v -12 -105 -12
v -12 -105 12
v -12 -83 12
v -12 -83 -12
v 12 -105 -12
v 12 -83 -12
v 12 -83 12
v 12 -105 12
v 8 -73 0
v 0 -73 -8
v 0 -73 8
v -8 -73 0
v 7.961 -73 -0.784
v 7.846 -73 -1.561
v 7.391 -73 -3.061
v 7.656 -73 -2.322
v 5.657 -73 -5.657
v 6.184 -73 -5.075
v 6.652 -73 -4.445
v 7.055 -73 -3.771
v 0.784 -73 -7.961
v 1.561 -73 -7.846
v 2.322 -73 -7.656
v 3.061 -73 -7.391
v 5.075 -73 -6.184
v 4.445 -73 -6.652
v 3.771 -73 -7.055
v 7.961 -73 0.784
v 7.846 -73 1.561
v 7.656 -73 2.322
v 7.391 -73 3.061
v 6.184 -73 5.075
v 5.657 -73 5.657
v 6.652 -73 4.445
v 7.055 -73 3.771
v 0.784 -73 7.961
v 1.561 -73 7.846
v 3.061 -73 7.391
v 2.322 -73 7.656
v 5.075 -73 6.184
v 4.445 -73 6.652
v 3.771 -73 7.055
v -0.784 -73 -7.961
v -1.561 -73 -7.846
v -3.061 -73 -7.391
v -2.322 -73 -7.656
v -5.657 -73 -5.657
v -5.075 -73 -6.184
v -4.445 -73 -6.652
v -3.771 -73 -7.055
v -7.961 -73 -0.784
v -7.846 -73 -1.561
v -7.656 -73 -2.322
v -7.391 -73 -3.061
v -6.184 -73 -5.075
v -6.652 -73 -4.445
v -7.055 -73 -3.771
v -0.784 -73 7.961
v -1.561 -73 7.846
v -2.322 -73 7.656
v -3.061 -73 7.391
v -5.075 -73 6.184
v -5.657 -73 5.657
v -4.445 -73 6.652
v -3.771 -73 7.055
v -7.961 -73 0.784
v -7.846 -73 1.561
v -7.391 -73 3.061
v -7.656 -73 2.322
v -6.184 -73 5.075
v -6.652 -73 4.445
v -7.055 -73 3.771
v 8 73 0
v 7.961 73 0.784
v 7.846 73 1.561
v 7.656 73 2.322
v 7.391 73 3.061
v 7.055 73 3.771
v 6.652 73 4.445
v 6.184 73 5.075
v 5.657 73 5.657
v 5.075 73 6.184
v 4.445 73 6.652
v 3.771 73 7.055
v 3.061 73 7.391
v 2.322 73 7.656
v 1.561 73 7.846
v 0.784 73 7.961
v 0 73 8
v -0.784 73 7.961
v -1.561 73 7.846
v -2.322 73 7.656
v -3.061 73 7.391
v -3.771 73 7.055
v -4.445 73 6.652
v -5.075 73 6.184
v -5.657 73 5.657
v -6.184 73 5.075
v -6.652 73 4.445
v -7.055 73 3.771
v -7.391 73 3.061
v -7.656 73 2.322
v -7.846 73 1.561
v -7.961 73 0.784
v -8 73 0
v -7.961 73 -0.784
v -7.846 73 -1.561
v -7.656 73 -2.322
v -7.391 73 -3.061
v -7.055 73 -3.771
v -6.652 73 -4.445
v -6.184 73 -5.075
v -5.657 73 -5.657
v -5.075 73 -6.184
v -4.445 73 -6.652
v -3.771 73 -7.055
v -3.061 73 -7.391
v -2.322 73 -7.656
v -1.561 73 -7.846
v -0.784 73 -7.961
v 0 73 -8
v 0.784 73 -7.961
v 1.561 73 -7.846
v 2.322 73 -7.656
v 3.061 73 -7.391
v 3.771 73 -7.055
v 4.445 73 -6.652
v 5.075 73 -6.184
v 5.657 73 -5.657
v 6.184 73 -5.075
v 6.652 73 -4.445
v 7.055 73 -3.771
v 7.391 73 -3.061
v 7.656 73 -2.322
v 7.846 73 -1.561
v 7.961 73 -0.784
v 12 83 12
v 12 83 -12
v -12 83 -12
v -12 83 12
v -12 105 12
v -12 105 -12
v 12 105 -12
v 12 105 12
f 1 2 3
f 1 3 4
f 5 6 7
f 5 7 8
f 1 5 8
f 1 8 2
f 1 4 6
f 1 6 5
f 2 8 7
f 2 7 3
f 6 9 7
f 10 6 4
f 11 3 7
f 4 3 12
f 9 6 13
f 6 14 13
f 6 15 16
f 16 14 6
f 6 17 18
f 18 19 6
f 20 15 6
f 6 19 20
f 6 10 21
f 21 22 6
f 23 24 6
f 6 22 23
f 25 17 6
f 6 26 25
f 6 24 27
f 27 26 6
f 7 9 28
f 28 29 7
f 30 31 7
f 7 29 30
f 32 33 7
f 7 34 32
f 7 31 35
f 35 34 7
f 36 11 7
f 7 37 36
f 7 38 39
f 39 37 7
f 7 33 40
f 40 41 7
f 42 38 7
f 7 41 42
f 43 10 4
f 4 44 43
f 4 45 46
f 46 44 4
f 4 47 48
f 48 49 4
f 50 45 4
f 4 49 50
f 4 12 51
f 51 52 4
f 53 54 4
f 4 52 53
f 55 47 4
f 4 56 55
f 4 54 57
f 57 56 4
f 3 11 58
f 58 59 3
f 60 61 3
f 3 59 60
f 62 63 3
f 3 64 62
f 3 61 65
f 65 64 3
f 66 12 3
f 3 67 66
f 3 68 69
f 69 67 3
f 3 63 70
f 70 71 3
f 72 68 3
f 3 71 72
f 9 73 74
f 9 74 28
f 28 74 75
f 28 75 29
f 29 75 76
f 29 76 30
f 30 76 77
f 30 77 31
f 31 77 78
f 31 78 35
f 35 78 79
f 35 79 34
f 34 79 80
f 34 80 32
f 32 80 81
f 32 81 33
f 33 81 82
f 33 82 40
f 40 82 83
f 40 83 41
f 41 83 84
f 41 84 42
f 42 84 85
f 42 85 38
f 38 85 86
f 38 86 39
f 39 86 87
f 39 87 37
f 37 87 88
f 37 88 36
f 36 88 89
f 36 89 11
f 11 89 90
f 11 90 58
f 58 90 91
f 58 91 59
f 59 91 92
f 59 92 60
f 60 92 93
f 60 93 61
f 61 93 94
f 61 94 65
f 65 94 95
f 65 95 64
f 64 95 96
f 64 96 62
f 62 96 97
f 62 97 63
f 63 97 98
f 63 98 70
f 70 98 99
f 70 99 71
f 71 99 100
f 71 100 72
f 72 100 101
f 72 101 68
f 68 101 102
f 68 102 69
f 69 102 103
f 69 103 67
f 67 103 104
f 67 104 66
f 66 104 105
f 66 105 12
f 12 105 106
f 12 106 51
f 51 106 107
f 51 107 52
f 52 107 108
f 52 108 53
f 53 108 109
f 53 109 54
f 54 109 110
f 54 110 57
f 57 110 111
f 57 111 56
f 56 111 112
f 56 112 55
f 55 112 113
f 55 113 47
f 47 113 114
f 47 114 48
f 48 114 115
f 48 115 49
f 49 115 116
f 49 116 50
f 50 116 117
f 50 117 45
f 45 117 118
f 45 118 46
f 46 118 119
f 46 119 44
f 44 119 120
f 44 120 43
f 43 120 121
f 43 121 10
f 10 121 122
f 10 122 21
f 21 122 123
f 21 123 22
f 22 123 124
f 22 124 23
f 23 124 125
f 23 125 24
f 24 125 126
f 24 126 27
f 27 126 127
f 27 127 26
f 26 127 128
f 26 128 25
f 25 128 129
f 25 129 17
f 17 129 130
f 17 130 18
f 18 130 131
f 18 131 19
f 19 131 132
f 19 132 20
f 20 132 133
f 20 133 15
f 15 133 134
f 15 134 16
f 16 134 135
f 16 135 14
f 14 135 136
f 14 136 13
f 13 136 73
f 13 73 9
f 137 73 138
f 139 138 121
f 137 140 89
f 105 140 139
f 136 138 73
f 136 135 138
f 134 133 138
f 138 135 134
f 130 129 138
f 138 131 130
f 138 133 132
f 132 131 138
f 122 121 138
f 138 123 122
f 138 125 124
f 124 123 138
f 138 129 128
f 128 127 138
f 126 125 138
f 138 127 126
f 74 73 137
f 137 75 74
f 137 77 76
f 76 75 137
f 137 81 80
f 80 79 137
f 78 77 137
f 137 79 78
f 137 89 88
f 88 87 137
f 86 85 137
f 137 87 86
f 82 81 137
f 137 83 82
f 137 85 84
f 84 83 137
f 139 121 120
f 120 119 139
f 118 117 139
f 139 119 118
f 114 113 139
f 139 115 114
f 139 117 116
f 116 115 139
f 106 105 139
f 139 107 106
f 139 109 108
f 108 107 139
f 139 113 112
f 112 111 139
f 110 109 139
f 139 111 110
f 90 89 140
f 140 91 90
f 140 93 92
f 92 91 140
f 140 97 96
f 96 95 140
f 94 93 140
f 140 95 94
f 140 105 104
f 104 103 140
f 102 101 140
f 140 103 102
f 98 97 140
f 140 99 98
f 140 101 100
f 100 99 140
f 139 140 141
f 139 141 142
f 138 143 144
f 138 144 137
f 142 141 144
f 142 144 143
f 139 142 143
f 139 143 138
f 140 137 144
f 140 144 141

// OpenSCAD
// Millimeters. Same vertices as STL and simulation.
polyhedron(points=[[-12.0, -105.0, -12.0], [-12.0, -105.0, 12.0], [-12.0, -83.0, 12.0], [-12.0, -83.0, -12.0], [12.0, -105.0, -12.0], [12.0, -83.0, -12.0], [12.0, -83.0, 12.0], [12.0, -105.0, 12.0], [8.0, -73.0, 0.0], [-1.469576158976824e-15, -73.0, -8.0], [4.898587196589413e-16, -73.0, 8.0], [-8.0, -73.0, 9.797174393178826e-16], [7.961477813377575, -73.0, -0.784137122636484], [7.8462822432258434, -73.0, -1.5607225761290298], [7.391036260090292, -73.0, -3.061467458920723], [7.655522685857671, -73.0, -2.3222774180357], [5.656854249492379, -73.0, -5.6568542494923815], [6.184083626901893, -73.0, -5.0751462733091675], [6.651756898420363, -73.0, -4.444561864156817], [7.055370114786839, -73.0, -3.771173894607984], [0.7841371226364807, -73.0, -7.961477813377575], [1.5607225761290264, -73.0, -7.8462822432258434], [2.3222774180356964, -73.0, -7.6555226858576715], [3.06146745892072, -73.0, -7.391036260090293], [5.075146273309165, -73.0, -6.184083626901895], [4.444561864156816, -73.0, -6.6517568984203645], [3.7711738946079807, -73.0, -7.05537011478684], [7.961477813377575, -73.0, 0.7841371226364848], [7.8462822432258434, -73.0, 1.560722576129026], [7.655522685857671, -73.0, 2.3222774180356986], [7.391036260090294, -73.0, 3.0614674589207183], [6.184083626901896, -73.0, 5.075146273309165], [5.656854249492381, -73.0, 5.65685424949238], [6.651756898420363, -73.0, 4.444561864156817], [7.05537011478684, -73.0, 3.771173894607981], [0.7841371226364862, -73.0, 7.961477813377575], [1.5607225761290267, -73.0, 7.8462822432258434], [3.0614674589207187, -73.0, 7.391036260090294], [2.3222774180356986, -73.0, 7.655522685857671], [5.075146273309165, -73.0, 6.184083626901896], [4.444561864156818, -73.0, 6.651756898420363], [3.7711738946079825, -73.0, 7.0553701147868395], [-0.7841371226364836, -73.0, -7.961477813377575], [-1.5607225761290293, -73.0, -7.8462822432258434], [-3.0614674589207227, -73.0, -7.391036260090292], [-2.3222774180356995, -73.0, -7.655522685857671], [-5.6568542494923815, -73.0, -5.65685424949238], [-5.075146273309167, -73.0, -6.184083626901893], [-4.444561864156817, -73.0, -6.651756898420363], [-3.7711738946079834, -73.0, -7.0553701147868395], [-7.961477813377575, -73.0, -0.7841371226364847], [-7.8462822432258434, -73.0, -1.5607225761290269], [-7.6555226858576715, -73.0, -2.322277418035697], [-7.391036260090295, -73.0, -3.0614674589207174], [-6.184083626901897, -73.0, -5.075146273309163], [-6.6517568984203645, -73.0, -4.444561864156816], [-7.05537011478684, -73.0, -3.771173894607981], [-0.7841371226364852, -73.0, 7.961477813377575], [-1.5607225761290255, -73.0, 7.8462822432258434], [-2.3222774180356973, -73.0, 7.6555226858576715], [-3.061467458920718, -73.0, 7.391036260090294], [-5.075146273309164, -73.0, 6.184083626901897], [-5.65685424949238, -73.0, 5.656854249492381], [-4.444561864156816, -73.0, 6.651756898420364], [-3.7711738946079816, -73.0, 7.05537011478684], [-7.961477813377575, -73.0, 0.7841371226364866], [-7.8462822432258434, -73.0, 1.5607225761290289], [-7.391036260090294, -73.0, 3.061467458920719], [-7.655522685857671, -73.0, 2.322277418035699], [-6.184083626901896, -73.0, 5.075146273309165], [-6.651756898420364, -73.0, 4.444561864156817], [-7.0553701147868395, -73.0, 3.771173894607983], [8.0, 73.0, 0.0], [7.961477813377575, 73.0, 0.7841371226364848], [7.8462822432258434, 73.0, 1.560722576129026], [7.655522685857671, 73.0, 2.3222774180356986], [7.391036260090294, 73.0, 3.0614674589207183], [7.05537011478684, 73.0, 3.771173894607981], [6.651756898420363, 73.0, 4.444561864156817], [6.184083626901896, 73.0, 5.075146273309165], [5.656854249492381, 73.0, 5.65685424949238], [5.075146273309165, 73.0, 6.184083626901896], [4.444561864156818, 73.0, 6.651756898420363], [3.7711738946079825, 73.0, 7.0553701147868395], [3.0614674589207187, 73.0, 7.391036260090294], [2.3222774180356986, 73.0, 7.655522685857671], [1.5607225761290267, 73.0, 7.8462822432258434], [0.7841371226364862, 73.0, 7.961477813377575], [4.898587196589413e-16, 73.0, 8.0], [-0.7841371226364852, 73.0, 7.961477813377575], [-1.5607225761290255, 73.0, 7.8462822432258434], [-2.3222774180356973, 73.0, 7.6555226858576715], [-3.061467458920718, 73.0, 7.391036260090294], [-3.7711738946079816, 73.0, 7.05537011478684], [-4.444561864156816, 73.0, 6.651756898420364], [-5.075146273309164, 73.0, 6.184083626901897], [-5.65685424949238, 73.0, 5.656854249492381], [-6.184083626901896, 73.0, 5.075146273309165], [-6.651756898420364, 73.0, 4.444561864156817], [-7.0553701147868395, 73.0, 3.771173894607983], [-7.391036260090294, 73.0, 3.061467458920719], [-7.655522685857671, 73.0, 2.322277418035699], [-7.8462822432258434, 73.0, 1.5607225761290289], [-7.961477813377575, 73.0, 0.7841371226364866], [-8.0, 73.0, 9.797174393178826e-16], [-7.961477813377575, 73.0, -0.7841371226364847], [-7.8462822432258434, 73.0, -1.5607225761290269], [-7.6555226858576715, 73.0, -2.322277418035697], [-7.391036260090295, 73.0, -3.0614674589207174], [-7.05537011478684, 73.0, -3.771173894607981], [-6.6517568984203645, 73.0, -4.444561864156816], [-6.184083626901897, 73.0, -5.075146273309163], [-5.6568542494923815, 73.0, -5.65685424949238], [-5.075146273309167, 73.0, -6.184083626901893], [-4.444561864156817, 73.0, -6.651756898420363], [-3.7711738946079834, 73.0, -7.0553701147868395], [-3.0614674589207227, 73.0, -7.391036260090292], [-2.3222774180356995, 73.0, -7.655522685857671], [-1.5607225761290293, 73.0, -7.8462822432258434], [-0.7841371226364836, 73.0, -7.961477813377575], [-1.469576158976824e-15, 73.0, -8.0], [0.7841371226364807, 73.0, -7.961477813377575], [1.5607225761290264, 73.0, -7.8462822432258434], [2.3222774180356964, 73.0, -7.6555226858576715], [3.06146745892072, 73.0, -7.391036260090293], [3.7711738946079807, 73.0, -7.05537011478684], [4.444561864156816, 73.0, -6.6517568984203645], [5.075146273309165, 73.0, -6.184083626901895], [5.656854249492379, 73.0, -5.6568542494923815], [6.184083626901893, 73.0, -5.0751462733091675], [6.651756898420363, 73.0, -4.444561864156817], [7.055370114786839, 73.0, -3.771173894607984], [7.391036260090292, 73.0, -3.061467458920723], [7.655522685857671, 73.0, -2.3222774180357], [7.8462822432258434, 73.0, -1.5607225761290298], [7.961477813377575, 73.0, -0.784137122636484], [12.0, 82.99999999999999, 11.999999999999998], [11.999999999999993, 82.99999999999999, -12.0], [-12.0, 82.99999999999999, -11.999999999999995], [-11.999999999999998, 82.99999999999999, 12.0], [-12.0, 105.0, 12.0], [-12.0, 105.0, -12.0], [12.0, 105.0, -12.0], [12.0, 105.0, 12.0]], faces=[[2, 1, 0], [3, 2, 0], [6, 5, 4], [7, 6, 4], [7, 4, 0], [1, 7, 0], [5, 3, 0], [4, 5, 0], [6, 7, 1], [2, 6, 1], [6, 8, 5], [3, 5, 9], [6, 2, 10], [11, 2, 3], [12, 5, 8], [12, 13, 5], [15, 14, 5], [5, 13, 15], [17, 16, 5], [5, 18, 17], [5, 14, 19], [19, 18, 5], [20, 9, 5], [5, 21, 20], [5, 23, 22], [22, 21, 5], [5, 16, 24], [24, 25, 5], [26, 23, 5], [5, 25, 26], [27, 8, 6], [6, 28, 27], [6, 30, 29], [29, 28, 6], [6, 32, 31], [31, 33, 6], [34, 30, 6], [6, 33, 34], [6, 10, 35], [35, 36, 6], [38, 37, 6], [6, 36, 38], [39, 32, 6], [6, 40, 39], [6, 37, 41], [41, 40, 6], [3, 9, 42], [42, 43, 3], [45, 44, 3], [3, 43, 45], [47, 46, 3], [3, 48, 47], [3, 44, 49], [49, 48, 3], [50, 11, 3], [3, 51, 50], [3, 53, 52], [52, 51, 3], [3, 46, 54], [54, 55, 3], [56, 53, 3], [3, 55, 56], [57, 10, 2], [2, 58, 57], [2, 60, 59], [59, 58, 2], [2, 62, 61], [61, 63, 2], [64, 60, 2], [2, 63, 64], [2, 11, 65], [65, 66, 2], [68, 67, 2], [2, 66, 68], [69, 62, 2], [2, 70, 69], [2, 67, 71], [71, 70, 2], [73, 72, 8], [27, 73, 8], [74, 73, 27], [28, 74, 27], [75, 74, 28], [29, 75, 28], [76, 75, 29], [30, 76, 29], [77, 76, 30], [34, 77, 30], [78, 77, 34], [33, 78, 34], [79, 78, 33], [31, 79, 33], [80, 79, 31], [32, 80, 31], [81, 80, 32], [39, 81, 32], [82, 81, 39], [40, 82, 39], [83, 82, 40], [41, 83, 40], [84, 83, 41], [37, 84, 41], [85, 84, 37], [38, 85, 37], [86, 85, 38], [36, 86, 38], [87, 86, 36], [35, 87, 36], [88, 87, 35], [10, 88, 35], [89, 88, 10], [57, 89, 10], [90, 89, 57], [58, 90, 57], [91, 90, 58], [59, 91, 58], [92, 91, 59], [60, 92, 59], [93, 92, 60], [64, 93, 60], [94, 93, 64], [63, 94, 64], [95, 94, 63], [61, 95, 63], [96, 95, 61], [62, 96, 61], [97, 96, 62], [69, 97, 62], [98, 97, 69], [70, 98, 69], [99, 98, 70], [71, 99, 70], [100, 99, 71], [67, 100, 71], [101, 100, 67], [68, 101, 67], [102, 101, 68], [66, 102, 68], [103, 102, 66], [65, 103, 66], [104, 103, 65], [11, 104, 65], [105, 104, 11], [50, 105, 11], [106, 105, 50], [51, 106, 50], [107, 106, 51], [52, 107, 51], [108, 107, 52], [53, 108, 52], [109, 108, 53], [56, 109, 53], [110, 109, 56], [55, 110, 56], [111, 110, 55], [54, 111, 55], [112, 111, 54], [46, 112, 54], [113, 112, 46], [47, 113, 46], [114, 113, 47], [48, 114, 47], [115, 114, 48], [49, 115, 48], [116, 115, 49], [44, 116, 49], [117, 116, 44], [45, 117, 44], [118, 117, 45], [43, 118, 45], [119, 118, 43], [42, 119, 43], [120, 119, 42], [9, 120, 42], [121, 120, 9], [20, 121, 9], [122, 121, 20], [21, 122, 20], [123, 122, 21], [22, 123, 21], [124, 123, 22], [23, 124, 22], [125, 124, 23], [26, 125, 23], [126, 125, 26], [25, 126, 26], [127, 126, 25], [24, 127, 25], [128, 127, 24], [16, 128, 24], [129, 128, 16], [17, 129, 16], [130, 129, 17], [18, 130, 17], [131, 130, 18], [19, 131, 18], [132, 131, 19], [14, 132, 19], [133, 132, 14], [15, 133, 14], [134, 133, 15], [13, 134, 15], [135, 134, 13], [12, 135, 13], [72, 135, 12], [8, 72, 12], [137, 72, 136], [120, 137, 138], [88, 139, 136], [138, 139, 104], [72, 137, 135], [137, 134, 135], [137, 132, 133], [133, 134, 137], [137, 128, 129], [129, 130, 137], [131, 132, 137], [137, 130, 131], [137, 120, 121], [121, 122, 137], [123, 124, 137], [137, 122, 123], [127, 128, 137], [137, 126, 127], [137, 124, 125], [125, 126, 137], [136, 72, 73], [73, 74, 136], [75, 76, 136], [136, 74, 75], [79, 80, 136], [136, 78, 79], [136, 76, 77], [77, 78, 136], [87, 88, 136], [136, 86, 87], [136, 84, 85], [85, 86, 136], [136, 80, 81], [81, 82, 136], [83, 84, 136], [136, 82, 83], [119, 120, 138], [138, 118, 119], [138, 116, 117], [117, 118, 138], [138, 112, 113], [113, 114, 138], [115, 116, 138], [138, 114, 115], [138, 104, 105], [105, 106, 138], [107, 108, 138], [138, 106, 107], [111, 112, 138], [138, 110, 111], [138, 108, 109], [109, 110, 138], [139, 88, 89], [89, 90, 139], [91, 92, 139], [139, 90, 91], [95, 96, 139], [139, 94, 95], [139, 92, 93], [93, 94, 139], [103, 104, 139], [139, 102, 103], [139, 100, 101], [101, 102, 139], [139, 96, 97], [97, 98, 139], [99, 100, 139], [139, 98, 99], [140, 139, 138], [141, 140, 138], [143, 142, 137], [136, 143, 137], [143, 140, 141], [142, 143, 141], [142, 141, 138], [137, 142, 138], [143, 136, 139], [140, 143, 139]], convexity=10);
